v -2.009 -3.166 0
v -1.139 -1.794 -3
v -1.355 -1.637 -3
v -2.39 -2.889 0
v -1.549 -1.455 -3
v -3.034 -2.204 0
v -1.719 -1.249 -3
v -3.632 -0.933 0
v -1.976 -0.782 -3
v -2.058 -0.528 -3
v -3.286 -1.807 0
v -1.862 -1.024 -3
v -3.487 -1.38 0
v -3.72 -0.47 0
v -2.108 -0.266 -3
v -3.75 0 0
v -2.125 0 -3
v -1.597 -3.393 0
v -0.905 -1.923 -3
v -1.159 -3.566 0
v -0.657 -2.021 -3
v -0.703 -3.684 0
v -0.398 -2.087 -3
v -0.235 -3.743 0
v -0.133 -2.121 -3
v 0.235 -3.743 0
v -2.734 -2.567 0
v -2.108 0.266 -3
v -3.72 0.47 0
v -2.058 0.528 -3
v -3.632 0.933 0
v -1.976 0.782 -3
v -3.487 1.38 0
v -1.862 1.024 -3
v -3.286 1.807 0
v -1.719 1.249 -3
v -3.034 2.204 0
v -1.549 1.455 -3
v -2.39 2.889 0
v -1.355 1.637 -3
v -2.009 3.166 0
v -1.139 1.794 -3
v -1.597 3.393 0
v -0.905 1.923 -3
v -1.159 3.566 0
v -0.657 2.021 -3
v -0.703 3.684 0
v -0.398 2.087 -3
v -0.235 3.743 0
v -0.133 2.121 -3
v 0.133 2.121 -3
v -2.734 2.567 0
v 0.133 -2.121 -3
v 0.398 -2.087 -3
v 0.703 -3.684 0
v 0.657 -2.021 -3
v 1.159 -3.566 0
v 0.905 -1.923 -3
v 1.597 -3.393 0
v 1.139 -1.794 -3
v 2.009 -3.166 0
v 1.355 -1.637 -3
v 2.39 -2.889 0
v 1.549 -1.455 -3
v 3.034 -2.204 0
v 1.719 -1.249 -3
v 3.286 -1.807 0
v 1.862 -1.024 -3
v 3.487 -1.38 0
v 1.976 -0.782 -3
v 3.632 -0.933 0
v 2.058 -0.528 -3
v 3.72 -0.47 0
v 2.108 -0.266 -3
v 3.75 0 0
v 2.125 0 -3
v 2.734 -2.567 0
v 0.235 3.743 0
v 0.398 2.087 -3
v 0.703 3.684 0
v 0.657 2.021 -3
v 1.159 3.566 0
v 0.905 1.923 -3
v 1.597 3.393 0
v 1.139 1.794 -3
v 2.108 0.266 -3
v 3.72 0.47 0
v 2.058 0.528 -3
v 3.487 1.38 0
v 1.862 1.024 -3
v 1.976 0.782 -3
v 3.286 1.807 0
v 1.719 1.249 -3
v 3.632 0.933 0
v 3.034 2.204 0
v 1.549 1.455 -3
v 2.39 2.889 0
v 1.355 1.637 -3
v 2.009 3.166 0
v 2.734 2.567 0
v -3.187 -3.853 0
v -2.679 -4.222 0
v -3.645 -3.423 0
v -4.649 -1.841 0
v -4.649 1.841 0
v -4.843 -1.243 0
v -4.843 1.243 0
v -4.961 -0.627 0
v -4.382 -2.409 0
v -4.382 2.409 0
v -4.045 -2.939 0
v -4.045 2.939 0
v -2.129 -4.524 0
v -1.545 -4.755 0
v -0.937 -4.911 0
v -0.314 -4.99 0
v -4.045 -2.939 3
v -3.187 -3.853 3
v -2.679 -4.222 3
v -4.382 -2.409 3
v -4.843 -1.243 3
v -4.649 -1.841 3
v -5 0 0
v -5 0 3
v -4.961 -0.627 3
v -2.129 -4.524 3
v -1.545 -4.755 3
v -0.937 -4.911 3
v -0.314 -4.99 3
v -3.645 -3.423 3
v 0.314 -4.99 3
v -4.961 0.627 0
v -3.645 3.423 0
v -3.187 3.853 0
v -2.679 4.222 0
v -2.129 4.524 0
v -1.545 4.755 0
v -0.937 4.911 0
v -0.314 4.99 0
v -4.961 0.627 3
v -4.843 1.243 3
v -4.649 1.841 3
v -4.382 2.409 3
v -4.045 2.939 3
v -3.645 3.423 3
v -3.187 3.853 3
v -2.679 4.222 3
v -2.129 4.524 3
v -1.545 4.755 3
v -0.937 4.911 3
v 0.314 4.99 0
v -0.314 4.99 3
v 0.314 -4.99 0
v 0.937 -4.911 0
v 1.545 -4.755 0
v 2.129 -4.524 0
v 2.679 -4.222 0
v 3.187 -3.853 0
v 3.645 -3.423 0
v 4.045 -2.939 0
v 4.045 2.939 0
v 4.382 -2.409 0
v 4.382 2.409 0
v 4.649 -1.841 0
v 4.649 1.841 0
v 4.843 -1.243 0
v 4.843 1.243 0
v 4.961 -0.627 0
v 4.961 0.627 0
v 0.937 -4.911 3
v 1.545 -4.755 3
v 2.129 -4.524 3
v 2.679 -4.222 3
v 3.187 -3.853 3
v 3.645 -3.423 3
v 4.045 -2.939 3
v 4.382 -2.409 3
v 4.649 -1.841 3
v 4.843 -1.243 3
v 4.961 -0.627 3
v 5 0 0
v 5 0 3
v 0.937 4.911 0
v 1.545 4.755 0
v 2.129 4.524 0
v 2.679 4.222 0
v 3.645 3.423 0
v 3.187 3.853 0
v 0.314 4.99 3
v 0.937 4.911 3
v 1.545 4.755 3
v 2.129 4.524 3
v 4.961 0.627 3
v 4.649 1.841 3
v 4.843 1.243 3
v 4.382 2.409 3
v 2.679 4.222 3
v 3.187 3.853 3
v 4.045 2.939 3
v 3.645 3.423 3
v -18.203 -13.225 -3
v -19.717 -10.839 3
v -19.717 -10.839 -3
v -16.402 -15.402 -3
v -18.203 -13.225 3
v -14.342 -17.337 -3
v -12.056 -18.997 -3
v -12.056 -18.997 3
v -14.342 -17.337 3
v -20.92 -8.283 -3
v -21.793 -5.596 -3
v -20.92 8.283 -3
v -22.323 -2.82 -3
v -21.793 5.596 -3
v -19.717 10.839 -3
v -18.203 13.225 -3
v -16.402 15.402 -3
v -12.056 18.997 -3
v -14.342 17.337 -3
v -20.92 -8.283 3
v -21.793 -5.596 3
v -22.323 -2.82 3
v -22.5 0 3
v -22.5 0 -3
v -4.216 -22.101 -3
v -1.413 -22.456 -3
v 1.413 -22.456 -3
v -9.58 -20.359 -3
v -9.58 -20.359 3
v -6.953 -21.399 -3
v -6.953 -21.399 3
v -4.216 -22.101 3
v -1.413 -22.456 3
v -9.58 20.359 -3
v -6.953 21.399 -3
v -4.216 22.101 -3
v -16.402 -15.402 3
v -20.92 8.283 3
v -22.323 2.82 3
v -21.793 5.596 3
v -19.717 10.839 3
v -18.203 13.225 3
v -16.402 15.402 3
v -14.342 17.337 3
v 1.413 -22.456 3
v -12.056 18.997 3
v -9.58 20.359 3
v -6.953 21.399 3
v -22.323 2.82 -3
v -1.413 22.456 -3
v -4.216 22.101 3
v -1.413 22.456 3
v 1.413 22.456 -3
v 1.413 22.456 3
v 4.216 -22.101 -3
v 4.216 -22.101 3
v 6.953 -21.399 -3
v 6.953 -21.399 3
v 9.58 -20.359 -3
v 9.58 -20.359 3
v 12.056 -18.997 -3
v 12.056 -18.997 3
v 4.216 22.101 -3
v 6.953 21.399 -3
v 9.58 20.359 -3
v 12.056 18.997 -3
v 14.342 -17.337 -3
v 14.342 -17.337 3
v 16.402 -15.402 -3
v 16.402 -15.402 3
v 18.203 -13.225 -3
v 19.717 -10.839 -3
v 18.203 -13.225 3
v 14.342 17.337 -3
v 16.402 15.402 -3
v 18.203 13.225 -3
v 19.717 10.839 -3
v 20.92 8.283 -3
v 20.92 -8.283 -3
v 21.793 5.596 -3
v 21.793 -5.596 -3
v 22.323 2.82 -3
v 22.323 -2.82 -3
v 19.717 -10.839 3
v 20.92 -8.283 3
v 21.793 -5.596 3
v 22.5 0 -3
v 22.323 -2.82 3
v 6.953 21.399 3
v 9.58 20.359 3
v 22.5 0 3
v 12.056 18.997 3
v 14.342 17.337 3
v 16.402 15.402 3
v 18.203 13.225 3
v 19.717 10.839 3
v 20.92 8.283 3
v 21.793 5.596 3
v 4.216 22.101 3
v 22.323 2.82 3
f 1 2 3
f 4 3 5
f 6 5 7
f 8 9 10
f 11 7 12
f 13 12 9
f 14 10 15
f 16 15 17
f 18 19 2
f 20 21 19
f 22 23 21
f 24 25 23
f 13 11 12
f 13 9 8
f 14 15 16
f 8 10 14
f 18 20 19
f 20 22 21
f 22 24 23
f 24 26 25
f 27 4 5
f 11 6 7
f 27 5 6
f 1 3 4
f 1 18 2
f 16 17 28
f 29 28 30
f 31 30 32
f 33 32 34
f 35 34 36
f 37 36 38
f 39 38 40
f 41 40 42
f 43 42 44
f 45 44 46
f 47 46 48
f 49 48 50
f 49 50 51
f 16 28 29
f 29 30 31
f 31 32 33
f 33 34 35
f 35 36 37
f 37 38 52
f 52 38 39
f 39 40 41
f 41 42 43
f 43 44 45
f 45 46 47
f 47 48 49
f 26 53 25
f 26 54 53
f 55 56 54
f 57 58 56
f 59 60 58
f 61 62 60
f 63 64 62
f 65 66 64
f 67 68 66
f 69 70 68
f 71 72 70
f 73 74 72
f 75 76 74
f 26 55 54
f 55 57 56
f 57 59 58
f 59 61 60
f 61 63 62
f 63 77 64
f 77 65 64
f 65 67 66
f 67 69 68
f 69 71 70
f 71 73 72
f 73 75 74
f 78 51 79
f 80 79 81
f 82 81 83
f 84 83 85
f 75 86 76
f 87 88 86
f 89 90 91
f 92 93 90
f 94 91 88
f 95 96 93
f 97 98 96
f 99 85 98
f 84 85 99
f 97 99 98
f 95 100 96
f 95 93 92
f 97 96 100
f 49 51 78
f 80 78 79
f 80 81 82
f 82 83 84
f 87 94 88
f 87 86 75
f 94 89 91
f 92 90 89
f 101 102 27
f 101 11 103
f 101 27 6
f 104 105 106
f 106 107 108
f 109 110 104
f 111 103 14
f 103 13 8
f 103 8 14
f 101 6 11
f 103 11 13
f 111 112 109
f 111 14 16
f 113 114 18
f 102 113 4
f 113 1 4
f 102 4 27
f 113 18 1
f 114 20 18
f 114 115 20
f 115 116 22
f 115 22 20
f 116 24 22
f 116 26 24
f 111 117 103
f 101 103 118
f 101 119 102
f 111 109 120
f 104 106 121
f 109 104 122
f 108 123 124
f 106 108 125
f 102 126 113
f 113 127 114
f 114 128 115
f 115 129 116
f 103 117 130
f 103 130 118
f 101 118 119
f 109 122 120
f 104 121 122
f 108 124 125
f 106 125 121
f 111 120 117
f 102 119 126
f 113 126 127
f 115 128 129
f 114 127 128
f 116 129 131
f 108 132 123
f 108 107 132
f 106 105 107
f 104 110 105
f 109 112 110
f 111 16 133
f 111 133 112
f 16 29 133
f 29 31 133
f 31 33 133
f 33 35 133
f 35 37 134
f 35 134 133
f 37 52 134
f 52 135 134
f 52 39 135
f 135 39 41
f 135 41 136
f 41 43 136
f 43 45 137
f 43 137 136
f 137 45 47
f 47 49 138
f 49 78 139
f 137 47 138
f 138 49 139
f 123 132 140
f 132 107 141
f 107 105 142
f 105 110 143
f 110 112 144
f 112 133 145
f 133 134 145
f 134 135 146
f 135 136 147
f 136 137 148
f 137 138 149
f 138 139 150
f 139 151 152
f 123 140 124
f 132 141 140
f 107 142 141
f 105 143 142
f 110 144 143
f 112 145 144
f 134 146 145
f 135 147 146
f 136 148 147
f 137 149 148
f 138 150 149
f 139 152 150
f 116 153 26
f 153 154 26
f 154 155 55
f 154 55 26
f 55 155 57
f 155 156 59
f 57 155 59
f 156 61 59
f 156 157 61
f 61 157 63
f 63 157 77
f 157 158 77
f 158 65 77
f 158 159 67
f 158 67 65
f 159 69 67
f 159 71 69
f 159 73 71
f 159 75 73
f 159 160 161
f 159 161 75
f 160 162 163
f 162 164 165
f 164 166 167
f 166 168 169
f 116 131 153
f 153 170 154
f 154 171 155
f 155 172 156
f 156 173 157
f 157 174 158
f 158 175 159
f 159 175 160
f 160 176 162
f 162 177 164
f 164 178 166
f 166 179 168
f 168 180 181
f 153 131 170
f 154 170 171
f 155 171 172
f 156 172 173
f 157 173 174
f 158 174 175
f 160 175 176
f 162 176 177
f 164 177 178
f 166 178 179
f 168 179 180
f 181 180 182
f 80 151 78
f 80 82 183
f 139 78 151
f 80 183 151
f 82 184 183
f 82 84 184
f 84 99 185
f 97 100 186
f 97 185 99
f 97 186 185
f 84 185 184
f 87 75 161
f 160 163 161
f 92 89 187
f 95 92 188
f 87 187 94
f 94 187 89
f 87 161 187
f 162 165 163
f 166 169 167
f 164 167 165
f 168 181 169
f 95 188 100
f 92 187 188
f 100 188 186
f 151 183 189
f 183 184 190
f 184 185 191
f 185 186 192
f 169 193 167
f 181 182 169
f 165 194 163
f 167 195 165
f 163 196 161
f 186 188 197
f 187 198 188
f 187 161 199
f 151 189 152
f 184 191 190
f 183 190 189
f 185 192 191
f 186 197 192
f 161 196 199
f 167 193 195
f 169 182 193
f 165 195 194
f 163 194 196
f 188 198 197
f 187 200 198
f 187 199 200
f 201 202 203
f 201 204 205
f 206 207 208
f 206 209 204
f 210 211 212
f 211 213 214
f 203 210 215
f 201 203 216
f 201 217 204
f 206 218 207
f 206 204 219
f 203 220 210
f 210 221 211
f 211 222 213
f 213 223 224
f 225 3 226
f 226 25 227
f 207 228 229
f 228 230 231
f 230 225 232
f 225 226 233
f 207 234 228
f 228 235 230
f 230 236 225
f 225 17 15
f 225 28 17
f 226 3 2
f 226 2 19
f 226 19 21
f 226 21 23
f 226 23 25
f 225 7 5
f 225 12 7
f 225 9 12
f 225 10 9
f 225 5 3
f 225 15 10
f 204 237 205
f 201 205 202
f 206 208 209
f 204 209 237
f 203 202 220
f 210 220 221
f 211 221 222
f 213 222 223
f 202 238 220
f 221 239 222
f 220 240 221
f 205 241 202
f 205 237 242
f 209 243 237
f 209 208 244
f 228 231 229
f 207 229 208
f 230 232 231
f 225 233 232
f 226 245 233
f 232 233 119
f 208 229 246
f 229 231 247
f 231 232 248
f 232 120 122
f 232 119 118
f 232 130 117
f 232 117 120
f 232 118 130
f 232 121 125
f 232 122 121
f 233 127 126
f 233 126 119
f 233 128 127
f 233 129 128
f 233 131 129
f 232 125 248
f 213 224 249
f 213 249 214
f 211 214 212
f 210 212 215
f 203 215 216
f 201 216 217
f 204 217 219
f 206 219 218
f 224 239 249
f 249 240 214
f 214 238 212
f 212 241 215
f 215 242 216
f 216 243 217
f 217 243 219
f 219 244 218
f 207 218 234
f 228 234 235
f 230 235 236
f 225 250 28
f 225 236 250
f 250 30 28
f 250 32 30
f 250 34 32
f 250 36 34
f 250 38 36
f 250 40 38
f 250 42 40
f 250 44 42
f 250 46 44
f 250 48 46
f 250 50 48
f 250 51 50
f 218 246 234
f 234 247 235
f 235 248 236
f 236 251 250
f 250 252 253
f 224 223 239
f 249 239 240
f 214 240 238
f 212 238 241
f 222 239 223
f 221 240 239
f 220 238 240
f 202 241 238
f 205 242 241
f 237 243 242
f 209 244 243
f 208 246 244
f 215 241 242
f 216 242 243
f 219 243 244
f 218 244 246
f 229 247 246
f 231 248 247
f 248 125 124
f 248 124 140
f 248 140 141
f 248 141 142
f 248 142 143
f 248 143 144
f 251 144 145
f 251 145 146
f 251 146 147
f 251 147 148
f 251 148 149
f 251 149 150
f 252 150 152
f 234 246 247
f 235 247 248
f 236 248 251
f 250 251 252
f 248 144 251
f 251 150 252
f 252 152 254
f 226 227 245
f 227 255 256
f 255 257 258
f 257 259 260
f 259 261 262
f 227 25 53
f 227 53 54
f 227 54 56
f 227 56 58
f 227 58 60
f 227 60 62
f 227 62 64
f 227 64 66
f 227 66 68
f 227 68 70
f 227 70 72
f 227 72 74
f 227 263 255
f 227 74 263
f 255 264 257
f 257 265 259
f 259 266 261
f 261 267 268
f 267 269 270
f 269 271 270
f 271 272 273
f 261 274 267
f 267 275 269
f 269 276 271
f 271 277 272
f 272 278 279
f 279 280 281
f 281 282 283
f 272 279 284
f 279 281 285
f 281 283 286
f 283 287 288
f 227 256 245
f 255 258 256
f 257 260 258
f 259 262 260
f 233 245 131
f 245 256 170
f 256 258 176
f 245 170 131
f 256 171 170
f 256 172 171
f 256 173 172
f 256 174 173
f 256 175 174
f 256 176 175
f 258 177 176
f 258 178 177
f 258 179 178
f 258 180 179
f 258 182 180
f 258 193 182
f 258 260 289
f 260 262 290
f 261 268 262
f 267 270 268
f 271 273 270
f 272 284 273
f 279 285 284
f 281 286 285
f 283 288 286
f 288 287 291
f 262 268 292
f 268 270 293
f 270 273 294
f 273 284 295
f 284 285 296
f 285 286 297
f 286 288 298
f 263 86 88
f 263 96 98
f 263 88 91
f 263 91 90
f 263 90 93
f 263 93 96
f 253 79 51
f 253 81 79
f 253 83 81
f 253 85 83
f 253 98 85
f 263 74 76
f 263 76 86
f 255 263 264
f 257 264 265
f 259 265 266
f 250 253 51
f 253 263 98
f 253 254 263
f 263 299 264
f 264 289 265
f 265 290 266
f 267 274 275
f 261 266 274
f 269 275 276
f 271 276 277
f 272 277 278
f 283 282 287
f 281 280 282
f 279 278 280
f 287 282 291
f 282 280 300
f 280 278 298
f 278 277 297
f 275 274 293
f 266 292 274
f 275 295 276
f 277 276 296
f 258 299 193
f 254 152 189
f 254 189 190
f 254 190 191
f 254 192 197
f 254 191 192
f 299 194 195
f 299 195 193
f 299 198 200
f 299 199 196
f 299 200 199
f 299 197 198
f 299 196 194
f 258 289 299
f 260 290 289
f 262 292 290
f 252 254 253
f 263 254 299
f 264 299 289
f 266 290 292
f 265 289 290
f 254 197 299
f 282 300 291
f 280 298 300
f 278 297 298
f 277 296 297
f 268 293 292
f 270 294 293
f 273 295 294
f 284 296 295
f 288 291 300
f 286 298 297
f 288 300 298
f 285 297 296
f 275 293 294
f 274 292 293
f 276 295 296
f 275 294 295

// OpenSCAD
$fn = 50;

difference() {
	union() {
		translate(v = [0, 0, -3.0]) {
			cylinder(h = 6, r = 22.5);
		}
	}
	union() {
		translate(v = [0, 0, 0]) {
			rotate(a = [0, 0, 0]) {
				difference() {
					union() {
						translate(v = [0, 0, -6.0]) {
							cylinder(h = 6, r = 2.0);
						}
						translate(v = [0, 0, -3]) {
							cylinder(h = 3, r1 = 2.125, r2 = 3.75);
						}
						translate(v = [0, 0, -6.0]) {
							cylinder(h = 6, r = 2.125);
						}
						translate(v = [0, 0, -6.0]) {
							cylinder(h = 6, r = 2.0);
						}
					}
					union();
				}
			}
		}
		#cylinder(h = 3, r = 5.0);
	}
}
